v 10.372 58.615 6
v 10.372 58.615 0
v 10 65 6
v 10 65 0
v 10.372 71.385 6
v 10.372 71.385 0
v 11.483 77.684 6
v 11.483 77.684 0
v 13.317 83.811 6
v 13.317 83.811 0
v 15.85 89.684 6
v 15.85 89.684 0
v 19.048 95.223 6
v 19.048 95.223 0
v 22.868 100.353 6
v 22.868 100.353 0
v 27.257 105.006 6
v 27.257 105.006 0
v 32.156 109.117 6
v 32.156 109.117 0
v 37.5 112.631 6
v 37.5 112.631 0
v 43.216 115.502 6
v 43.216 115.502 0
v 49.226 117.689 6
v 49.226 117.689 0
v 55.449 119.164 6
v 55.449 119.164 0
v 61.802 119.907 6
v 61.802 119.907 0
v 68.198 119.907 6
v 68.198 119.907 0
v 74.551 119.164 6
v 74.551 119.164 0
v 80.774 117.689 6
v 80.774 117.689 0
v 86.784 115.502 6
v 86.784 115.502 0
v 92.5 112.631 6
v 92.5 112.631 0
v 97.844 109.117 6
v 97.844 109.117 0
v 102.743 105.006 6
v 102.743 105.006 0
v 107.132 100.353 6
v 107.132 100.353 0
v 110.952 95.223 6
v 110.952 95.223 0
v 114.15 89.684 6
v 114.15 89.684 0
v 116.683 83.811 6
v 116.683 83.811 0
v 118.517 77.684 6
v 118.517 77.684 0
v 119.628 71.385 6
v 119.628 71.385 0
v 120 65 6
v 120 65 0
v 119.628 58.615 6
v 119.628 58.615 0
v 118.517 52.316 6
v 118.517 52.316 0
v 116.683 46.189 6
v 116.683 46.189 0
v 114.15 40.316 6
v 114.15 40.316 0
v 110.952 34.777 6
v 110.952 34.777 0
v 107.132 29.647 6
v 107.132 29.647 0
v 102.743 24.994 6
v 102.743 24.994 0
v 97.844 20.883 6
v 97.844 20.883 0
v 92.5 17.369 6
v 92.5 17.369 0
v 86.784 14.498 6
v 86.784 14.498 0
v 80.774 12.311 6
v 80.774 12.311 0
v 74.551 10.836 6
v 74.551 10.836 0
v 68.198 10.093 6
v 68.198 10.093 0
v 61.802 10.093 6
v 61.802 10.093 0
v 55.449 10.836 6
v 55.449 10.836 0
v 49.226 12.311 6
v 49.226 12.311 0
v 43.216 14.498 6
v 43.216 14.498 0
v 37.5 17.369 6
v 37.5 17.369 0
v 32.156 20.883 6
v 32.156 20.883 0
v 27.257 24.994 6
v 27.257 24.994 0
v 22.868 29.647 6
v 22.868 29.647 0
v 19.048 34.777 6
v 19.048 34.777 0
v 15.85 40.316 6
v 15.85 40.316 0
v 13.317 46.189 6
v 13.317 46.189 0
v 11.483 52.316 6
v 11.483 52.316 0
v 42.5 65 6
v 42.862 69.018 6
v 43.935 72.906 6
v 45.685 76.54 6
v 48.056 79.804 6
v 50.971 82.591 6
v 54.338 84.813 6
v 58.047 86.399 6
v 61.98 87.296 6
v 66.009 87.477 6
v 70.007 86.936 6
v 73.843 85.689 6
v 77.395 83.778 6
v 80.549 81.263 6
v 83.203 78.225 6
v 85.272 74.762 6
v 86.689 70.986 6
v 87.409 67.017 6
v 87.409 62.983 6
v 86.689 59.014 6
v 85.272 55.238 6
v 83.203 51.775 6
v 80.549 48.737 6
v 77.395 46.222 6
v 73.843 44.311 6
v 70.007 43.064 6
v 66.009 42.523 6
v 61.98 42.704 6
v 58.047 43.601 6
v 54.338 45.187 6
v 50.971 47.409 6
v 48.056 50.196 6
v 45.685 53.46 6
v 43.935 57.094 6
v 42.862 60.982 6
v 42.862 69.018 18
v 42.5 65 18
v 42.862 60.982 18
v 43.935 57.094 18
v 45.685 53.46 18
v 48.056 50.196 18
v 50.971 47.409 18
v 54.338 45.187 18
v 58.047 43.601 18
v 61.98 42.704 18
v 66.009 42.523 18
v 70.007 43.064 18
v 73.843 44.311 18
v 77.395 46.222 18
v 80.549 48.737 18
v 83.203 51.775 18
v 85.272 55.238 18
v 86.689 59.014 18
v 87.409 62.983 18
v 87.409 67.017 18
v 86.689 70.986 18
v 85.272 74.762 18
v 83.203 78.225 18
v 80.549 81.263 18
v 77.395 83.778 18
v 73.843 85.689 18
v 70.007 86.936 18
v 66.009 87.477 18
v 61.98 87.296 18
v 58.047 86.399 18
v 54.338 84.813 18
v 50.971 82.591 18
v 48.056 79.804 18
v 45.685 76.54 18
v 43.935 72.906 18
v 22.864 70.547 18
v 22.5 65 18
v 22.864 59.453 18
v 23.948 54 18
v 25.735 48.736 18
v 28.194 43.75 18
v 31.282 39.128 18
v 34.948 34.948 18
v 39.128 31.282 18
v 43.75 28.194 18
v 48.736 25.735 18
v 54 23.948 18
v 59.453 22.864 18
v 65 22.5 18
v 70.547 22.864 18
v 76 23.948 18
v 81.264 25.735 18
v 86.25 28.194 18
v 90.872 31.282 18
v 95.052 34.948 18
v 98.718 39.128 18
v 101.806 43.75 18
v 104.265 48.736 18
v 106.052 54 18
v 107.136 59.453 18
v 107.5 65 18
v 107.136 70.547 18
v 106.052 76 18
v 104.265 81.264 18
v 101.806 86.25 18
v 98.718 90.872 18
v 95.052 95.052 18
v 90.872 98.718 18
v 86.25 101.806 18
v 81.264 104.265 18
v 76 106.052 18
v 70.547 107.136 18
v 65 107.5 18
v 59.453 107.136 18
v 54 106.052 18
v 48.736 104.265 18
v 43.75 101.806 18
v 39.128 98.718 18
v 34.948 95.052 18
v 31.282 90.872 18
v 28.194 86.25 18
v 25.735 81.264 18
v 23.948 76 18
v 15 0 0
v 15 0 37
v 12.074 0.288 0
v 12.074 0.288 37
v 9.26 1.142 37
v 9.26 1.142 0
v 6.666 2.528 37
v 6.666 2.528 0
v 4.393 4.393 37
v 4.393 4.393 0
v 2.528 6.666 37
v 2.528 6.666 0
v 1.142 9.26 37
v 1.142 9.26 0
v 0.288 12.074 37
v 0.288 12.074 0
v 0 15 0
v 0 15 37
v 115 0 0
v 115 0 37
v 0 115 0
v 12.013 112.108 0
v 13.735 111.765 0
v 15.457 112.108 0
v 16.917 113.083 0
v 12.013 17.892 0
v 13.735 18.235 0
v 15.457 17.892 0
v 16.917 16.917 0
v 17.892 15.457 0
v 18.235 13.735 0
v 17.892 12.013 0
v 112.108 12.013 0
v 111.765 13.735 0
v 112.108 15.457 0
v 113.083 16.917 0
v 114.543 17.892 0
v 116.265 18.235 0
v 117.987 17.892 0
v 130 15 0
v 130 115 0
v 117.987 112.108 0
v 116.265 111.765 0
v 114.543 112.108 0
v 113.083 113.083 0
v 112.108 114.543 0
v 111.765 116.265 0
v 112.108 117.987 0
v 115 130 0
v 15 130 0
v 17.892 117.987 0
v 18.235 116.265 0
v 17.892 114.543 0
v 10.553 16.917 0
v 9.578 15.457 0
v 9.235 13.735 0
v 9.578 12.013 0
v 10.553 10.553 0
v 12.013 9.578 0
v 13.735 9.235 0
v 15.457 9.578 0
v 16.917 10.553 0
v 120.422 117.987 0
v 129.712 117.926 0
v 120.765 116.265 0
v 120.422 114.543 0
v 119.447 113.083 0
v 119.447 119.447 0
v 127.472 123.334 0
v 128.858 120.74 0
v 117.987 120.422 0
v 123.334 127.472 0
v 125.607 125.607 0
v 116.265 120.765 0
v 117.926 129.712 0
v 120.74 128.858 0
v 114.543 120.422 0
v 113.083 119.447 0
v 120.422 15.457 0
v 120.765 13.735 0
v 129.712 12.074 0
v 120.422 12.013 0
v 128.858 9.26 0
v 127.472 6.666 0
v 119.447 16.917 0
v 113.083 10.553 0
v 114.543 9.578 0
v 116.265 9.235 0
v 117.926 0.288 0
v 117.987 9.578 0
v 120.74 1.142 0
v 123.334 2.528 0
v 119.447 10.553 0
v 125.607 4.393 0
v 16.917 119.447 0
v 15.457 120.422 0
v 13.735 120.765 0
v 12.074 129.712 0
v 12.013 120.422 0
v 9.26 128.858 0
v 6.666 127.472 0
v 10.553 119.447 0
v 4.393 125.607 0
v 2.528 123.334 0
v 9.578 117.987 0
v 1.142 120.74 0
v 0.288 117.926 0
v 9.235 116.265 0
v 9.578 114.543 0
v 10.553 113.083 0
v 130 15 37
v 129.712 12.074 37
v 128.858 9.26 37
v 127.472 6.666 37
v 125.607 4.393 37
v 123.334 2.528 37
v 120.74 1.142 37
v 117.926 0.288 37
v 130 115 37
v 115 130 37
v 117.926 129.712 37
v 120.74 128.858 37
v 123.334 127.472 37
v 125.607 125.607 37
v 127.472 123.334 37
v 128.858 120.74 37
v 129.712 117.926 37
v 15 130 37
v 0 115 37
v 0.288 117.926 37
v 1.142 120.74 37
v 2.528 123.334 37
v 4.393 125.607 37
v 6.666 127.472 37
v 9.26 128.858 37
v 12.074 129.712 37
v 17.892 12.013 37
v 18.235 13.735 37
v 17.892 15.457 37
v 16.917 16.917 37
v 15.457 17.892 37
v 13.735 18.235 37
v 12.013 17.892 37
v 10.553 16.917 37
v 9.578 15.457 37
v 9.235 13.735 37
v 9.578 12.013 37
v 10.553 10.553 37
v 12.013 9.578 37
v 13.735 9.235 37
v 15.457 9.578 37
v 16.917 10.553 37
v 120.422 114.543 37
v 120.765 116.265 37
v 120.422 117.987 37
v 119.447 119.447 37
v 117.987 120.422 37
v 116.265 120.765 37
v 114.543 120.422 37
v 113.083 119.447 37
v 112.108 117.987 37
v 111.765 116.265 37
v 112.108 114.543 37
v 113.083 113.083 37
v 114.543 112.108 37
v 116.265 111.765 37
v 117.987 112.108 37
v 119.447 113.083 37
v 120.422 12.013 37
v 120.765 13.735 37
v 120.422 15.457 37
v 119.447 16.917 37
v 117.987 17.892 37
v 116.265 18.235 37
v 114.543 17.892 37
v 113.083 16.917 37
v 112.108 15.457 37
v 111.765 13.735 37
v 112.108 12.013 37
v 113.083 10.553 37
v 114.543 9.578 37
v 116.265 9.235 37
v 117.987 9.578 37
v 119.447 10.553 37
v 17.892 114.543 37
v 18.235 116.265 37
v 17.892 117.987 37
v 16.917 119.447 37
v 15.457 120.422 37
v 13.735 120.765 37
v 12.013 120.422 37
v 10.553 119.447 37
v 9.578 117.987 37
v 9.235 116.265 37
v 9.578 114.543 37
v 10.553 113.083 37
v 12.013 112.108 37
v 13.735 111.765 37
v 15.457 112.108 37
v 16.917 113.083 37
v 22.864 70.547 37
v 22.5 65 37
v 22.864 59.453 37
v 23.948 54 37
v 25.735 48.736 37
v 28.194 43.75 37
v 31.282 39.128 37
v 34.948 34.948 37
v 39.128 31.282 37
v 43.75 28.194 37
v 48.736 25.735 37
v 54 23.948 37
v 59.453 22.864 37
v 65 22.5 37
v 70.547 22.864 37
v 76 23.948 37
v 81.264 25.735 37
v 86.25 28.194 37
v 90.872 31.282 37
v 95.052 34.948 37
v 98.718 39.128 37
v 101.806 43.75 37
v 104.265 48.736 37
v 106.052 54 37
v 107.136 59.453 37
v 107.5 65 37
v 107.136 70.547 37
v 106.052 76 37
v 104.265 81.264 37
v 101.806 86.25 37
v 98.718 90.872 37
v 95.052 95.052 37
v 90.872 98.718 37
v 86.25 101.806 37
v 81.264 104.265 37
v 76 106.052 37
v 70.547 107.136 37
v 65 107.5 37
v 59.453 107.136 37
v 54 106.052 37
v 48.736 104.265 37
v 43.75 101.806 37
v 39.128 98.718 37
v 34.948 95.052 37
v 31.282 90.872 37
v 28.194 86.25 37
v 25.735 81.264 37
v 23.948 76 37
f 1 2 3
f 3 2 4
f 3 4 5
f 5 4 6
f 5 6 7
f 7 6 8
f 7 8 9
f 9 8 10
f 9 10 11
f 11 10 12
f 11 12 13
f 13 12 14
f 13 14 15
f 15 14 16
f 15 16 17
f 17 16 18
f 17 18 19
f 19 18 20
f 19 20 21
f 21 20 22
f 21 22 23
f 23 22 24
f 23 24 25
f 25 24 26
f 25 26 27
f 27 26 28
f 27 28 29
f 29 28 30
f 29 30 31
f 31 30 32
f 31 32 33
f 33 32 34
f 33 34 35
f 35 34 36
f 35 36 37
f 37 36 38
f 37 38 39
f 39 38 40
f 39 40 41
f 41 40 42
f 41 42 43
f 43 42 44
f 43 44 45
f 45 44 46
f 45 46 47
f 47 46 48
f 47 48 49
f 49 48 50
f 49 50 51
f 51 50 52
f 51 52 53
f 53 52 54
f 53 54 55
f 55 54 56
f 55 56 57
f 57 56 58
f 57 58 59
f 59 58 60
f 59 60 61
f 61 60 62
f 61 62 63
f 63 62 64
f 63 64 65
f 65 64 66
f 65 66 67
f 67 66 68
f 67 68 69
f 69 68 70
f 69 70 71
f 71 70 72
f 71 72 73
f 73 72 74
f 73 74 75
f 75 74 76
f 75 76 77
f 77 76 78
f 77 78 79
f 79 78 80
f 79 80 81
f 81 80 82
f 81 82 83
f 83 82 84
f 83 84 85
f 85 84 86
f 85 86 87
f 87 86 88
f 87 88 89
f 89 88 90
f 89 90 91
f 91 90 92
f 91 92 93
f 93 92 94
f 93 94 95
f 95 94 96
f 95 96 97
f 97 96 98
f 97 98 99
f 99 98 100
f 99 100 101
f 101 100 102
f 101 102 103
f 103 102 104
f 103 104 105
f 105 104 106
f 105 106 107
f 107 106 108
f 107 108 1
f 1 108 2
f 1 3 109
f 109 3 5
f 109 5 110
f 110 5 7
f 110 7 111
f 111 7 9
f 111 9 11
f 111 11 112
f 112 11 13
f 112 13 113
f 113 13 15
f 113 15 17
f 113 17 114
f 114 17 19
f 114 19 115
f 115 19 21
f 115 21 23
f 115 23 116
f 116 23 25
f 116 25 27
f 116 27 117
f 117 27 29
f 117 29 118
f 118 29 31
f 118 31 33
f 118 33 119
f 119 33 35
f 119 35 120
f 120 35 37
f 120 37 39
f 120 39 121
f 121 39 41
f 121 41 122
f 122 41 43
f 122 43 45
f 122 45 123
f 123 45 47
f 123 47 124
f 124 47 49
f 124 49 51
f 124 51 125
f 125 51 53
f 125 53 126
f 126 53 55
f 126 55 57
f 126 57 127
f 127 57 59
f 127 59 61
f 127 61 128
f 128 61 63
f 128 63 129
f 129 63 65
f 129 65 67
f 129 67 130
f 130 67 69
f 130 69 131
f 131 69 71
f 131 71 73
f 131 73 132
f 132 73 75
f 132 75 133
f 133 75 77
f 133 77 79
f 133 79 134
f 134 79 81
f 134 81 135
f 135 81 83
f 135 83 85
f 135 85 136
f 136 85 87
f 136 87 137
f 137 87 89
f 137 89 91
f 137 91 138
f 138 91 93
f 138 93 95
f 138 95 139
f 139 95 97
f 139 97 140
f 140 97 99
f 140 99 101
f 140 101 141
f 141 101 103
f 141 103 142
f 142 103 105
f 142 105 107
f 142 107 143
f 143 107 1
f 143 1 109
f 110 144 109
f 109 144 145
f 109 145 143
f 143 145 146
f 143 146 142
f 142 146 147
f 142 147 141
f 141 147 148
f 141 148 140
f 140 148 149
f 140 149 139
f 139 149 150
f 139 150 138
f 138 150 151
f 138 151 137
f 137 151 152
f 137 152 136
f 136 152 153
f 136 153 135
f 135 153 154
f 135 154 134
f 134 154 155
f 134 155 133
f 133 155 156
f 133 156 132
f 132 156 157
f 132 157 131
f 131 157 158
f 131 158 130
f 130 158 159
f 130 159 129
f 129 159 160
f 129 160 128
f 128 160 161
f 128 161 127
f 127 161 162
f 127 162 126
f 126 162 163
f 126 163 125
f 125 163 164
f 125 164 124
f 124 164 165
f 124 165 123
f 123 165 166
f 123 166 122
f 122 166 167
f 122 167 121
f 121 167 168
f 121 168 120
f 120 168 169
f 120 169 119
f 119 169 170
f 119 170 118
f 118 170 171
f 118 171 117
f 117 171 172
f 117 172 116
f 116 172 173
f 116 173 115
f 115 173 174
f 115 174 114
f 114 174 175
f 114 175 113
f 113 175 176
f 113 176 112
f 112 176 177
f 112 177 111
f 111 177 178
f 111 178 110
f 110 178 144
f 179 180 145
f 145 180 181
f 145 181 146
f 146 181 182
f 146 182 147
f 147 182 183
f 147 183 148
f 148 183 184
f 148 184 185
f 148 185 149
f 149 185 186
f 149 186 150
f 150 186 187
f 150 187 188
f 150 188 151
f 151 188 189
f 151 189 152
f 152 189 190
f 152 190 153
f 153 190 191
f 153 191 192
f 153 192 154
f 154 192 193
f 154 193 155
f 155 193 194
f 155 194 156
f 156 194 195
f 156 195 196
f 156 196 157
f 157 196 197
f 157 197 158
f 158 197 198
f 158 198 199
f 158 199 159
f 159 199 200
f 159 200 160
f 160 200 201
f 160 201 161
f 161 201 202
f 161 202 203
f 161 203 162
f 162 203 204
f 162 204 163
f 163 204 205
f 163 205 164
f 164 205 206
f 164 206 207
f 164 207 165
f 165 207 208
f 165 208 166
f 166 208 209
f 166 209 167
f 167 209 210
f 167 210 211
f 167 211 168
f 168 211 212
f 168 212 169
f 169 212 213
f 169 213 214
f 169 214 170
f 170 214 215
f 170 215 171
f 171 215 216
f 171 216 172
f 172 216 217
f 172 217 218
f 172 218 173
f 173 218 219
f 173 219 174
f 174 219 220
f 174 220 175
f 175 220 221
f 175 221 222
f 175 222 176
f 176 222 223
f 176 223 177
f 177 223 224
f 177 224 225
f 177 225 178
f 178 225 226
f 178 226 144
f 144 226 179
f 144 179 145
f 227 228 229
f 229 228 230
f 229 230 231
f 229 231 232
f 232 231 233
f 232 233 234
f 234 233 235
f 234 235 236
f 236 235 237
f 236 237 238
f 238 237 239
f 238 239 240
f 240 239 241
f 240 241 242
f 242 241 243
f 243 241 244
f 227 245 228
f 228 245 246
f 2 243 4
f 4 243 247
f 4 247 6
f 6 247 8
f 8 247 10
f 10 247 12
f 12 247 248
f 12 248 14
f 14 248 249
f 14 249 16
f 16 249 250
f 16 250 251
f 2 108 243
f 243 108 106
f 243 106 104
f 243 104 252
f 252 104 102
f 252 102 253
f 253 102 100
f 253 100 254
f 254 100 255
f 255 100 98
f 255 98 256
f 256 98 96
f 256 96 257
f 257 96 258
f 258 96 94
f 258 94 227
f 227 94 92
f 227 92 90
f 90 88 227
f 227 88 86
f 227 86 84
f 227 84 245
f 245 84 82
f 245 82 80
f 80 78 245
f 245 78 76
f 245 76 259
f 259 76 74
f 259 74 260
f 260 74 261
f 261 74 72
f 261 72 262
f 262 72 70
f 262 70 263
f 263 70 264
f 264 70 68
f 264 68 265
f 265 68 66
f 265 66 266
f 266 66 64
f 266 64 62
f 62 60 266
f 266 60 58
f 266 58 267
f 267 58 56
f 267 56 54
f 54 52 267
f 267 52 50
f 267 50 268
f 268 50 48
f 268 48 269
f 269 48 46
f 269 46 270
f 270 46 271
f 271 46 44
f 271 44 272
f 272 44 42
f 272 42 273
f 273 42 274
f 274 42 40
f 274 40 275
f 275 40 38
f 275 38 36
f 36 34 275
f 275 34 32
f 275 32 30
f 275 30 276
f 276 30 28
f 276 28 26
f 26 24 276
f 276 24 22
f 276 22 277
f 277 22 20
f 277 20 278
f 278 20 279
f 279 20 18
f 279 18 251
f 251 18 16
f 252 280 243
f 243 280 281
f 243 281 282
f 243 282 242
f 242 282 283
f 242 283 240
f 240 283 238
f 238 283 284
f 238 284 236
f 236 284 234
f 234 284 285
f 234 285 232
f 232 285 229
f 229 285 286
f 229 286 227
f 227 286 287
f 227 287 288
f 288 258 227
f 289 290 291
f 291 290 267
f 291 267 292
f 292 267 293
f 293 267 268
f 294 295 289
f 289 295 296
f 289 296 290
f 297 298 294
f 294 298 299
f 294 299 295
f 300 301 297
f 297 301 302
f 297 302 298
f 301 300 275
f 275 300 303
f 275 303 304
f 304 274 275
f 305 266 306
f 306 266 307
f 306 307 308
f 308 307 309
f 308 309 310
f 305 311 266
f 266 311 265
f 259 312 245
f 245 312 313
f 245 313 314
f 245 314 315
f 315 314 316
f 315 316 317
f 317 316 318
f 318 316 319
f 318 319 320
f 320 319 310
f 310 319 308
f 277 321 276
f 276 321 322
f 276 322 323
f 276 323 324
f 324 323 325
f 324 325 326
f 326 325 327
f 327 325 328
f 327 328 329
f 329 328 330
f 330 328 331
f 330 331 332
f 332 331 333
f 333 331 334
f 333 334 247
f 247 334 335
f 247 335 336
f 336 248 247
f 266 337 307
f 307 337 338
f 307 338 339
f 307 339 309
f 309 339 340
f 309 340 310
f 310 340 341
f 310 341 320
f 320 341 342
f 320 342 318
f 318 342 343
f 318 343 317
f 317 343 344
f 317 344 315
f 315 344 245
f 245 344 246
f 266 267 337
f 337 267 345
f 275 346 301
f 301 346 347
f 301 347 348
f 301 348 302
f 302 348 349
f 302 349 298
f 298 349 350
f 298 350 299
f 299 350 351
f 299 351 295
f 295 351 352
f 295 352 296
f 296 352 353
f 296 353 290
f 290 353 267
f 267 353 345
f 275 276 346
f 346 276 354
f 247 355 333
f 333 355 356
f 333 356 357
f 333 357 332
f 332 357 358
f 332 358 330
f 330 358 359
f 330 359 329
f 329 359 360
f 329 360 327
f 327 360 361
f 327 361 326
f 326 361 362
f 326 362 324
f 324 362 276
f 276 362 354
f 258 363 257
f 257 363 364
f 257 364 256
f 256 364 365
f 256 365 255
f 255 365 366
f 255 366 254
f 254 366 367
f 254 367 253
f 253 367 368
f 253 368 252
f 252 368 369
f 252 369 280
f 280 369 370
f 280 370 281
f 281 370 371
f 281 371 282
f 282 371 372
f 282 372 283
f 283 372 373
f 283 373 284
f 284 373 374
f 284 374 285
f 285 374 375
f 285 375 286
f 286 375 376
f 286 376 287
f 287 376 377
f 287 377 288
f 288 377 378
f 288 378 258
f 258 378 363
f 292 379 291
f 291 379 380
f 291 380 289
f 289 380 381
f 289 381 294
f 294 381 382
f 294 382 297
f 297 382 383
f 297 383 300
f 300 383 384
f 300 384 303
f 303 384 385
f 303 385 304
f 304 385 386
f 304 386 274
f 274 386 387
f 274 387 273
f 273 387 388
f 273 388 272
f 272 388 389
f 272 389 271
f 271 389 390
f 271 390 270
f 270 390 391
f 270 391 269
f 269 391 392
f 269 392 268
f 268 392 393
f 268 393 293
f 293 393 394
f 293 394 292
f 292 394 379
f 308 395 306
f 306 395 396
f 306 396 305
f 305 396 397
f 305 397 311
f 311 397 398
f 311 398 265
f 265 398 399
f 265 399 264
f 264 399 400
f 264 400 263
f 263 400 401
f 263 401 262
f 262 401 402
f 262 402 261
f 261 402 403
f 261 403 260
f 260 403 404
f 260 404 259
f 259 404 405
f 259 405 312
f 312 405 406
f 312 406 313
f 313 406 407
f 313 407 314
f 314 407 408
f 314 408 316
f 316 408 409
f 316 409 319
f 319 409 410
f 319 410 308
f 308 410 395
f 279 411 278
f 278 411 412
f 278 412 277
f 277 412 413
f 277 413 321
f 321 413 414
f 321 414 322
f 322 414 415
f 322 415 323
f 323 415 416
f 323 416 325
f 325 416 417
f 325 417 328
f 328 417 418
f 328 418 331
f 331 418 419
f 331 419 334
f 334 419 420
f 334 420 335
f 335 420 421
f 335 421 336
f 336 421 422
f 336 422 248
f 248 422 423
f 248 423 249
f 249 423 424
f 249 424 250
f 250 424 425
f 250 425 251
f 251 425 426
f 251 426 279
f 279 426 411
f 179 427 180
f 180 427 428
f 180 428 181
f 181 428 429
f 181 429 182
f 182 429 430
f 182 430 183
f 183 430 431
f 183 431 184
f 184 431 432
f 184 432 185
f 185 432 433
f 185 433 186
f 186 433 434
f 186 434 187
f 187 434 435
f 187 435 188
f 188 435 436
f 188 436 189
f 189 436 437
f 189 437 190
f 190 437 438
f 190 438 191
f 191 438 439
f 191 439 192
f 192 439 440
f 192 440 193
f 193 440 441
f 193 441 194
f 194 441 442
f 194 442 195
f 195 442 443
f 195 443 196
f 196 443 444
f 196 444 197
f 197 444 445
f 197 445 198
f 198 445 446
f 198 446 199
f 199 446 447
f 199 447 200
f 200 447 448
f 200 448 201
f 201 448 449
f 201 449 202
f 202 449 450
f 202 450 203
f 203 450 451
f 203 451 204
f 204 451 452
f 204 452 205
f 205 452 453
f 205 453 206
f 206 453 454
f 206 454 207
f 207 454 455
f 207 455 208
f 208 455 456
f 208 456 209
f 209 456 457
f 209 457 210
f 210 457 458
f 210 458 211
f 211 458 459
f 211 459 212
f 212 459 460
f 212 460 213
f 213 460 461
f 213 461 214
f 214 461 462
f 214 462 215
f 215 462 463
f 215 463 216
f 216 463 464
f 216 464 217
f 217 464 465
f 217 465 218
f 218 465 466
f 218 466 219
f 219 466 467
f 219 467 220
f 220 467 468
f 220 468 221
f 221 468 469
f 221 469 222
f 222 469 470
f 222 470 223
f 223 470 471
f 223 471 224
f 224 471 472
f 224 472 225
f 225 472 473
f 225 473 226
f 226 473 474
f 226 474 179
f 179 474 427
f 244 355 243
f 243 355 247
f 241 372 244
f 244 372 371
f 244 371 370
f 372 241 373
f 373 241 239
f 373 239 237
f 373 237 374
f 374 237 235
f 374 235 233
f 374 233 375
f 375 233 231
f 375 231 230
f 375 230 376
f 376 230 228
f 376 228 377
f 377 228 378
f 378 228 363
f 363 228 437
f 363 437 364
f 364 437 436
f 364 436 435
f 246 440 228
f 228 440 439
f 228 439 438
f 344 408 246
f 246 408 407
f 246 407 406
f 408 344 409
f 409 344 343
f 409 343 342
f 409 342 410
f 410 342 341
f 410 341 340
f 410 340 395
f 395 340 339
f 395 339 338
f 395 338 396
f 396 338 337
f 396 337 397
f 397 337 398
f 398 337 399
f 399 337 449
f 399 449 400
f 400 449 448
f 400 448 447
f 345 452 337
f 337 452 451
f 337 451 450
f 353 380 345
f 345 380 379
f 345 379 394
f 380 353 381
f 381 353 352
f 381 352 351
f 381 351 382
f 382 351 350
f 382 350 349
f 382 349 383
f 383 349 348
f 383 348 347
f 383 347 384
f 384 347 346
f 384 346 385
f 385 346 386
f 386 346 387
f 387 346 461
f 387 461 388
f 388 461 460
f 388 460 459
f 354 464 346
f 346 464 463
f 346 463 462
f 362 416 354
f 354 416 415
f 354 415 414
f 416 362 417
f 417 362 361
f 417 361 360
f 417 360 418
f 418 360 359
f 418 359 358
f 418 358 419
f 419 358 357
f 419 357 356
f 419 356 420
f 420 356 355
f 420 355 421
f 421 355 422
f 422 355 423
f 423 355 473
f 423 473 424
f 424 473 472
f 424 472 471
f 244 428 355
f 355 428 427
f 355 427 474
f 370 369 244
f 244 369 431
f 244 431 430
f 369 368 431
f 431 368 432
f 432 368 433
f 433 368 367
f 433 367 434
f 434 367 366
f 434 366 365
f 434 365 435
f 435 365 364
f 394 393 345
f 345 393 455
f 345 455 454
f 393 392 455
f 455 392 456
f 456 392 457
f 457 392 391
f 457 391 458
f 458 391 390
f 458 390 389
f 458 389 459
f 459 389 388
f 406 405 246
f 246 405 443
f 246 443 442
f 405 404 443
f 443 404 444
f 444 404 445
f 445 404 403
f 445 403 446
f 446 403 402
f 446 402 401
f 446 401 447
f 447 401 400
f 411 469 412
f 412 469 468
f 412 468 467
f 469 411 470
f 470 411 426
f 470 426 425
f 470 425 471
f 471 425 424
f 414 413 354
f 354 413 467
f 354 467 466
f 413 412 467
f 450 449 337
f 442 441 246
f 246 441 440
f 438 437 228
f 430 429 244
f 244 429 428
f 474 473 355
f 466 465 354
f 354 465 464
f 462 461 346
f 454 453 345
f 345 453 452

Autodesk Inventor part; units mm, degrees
ref_plane "YZ Plane" through (0, 0, 0) normal (1, 0, 0) x (0, 1, 0)
ref_plane "XZ Plane" through (0, 0, 0) normal (0, 1, 0) x (-1, 0, 0)
ref_plane "XY Plane" through (0, 0, 0) normal (0, 0, 1) x (1, 0, 0)
sketch "Sketch6" plane through (0, 0, 0) normal (0, 0, 1) x (1, 0, 0)
  line L0 (0, 0) -> (130, 0)
  line L1 (130, 0) -> (130, 130)
  line L2 (130, 130) -> (0, 130)
  line L3 (0, 130) -> (0, 0)
  circle A0 centre (65, 65) radius 42.5
  dimension "d28" = 130
  dimension "d29" = 130
  dimension "d30" = 85
  dimension "d31" = 65
  dimension "d32" = 65
extrude "Extrusion6" add sketch "Sketch6" along normal blind 37
sketch "Sketch7" plane through (0, 0, 37) normal (0, 0, 1) x (1, 0, 0)
  circle A0 centre (116.265, 116.265) radius 4.5
  line L0 (130, 0) -> (130, 130) projected
  circle A1 centre (65, 65) radius 42.5 projected
  circle A2 centre (13.735, 116.265) radius 4.5
  circle A3 centre (13.735, 13.735) radius 4.5
  circle A4 centre (116.265, 13.735) radius 4.5
  point P0 (0, 0)
  dimension "d36" = 51.265
  dimension "d37" = 51.265
  dimension "d38" = 9
  dimension "d39" = 9
  dimension "d40" = 9
  dimension "d41" = 9
  dimension "d42" = 51.265
  dimension "d43" = 51.265
  dimension "d44" = 51.265
  dimension "d45" = 51.265
  dimension "d46" = 51.265
  dimension "d47" = 51.265
extrude "Extrusion7" cut sketch "Sketch7" against normal blind 37 contours A0 | A2 | A3 | A4
fillet "Fillet1" radius 15 4 edges at (0, 130, 18.5) (130, 130, 18.5) (130, 0, 18.5) (0, 0, 18.5)
sketch "Sketch9" plane through (0, 0, 0) normal (0, 0, -1) x (-1, 0, 0)
  circle A0 centre (-65, 65) radius 42.5 projected
  circle A1 centre (-65, 65) radius 42.5
  circle A2 centre (-65, 65) radius 22.5
  point P0 (0, 0)
  dimension "d54" = 85
  dimension "d55" = 45
extrude "Extrusion9" add sketch "Sketch9" against normal blind 18
sketch "Sketch10" plane through (0, 0, 0) normal (0, 0, -1) x (-1, 0, 0)
  circle A0 centre (-65, 65) radius 22.5 projected
  circle A1 centre (-65, 65) radius 55
  point P0 (0, 0)
  dimension "d58" = 110
extrude "Extrusion10" cut sketch "Sketch10" against normal blind 6
equation "\"d31\" = 0.5 * d28"
equation "\"d32\" = 0.5 * d29"
equation "\"d42\" = d36"
equation "\"d43\" = d36"
equation "\"d44\" = d36"
equation "\"d45\" = d36"
equation "\"d46\" = d36"
equation "\"d47\" = d36"
properties part number "EndEffectorMotorAdapter"
